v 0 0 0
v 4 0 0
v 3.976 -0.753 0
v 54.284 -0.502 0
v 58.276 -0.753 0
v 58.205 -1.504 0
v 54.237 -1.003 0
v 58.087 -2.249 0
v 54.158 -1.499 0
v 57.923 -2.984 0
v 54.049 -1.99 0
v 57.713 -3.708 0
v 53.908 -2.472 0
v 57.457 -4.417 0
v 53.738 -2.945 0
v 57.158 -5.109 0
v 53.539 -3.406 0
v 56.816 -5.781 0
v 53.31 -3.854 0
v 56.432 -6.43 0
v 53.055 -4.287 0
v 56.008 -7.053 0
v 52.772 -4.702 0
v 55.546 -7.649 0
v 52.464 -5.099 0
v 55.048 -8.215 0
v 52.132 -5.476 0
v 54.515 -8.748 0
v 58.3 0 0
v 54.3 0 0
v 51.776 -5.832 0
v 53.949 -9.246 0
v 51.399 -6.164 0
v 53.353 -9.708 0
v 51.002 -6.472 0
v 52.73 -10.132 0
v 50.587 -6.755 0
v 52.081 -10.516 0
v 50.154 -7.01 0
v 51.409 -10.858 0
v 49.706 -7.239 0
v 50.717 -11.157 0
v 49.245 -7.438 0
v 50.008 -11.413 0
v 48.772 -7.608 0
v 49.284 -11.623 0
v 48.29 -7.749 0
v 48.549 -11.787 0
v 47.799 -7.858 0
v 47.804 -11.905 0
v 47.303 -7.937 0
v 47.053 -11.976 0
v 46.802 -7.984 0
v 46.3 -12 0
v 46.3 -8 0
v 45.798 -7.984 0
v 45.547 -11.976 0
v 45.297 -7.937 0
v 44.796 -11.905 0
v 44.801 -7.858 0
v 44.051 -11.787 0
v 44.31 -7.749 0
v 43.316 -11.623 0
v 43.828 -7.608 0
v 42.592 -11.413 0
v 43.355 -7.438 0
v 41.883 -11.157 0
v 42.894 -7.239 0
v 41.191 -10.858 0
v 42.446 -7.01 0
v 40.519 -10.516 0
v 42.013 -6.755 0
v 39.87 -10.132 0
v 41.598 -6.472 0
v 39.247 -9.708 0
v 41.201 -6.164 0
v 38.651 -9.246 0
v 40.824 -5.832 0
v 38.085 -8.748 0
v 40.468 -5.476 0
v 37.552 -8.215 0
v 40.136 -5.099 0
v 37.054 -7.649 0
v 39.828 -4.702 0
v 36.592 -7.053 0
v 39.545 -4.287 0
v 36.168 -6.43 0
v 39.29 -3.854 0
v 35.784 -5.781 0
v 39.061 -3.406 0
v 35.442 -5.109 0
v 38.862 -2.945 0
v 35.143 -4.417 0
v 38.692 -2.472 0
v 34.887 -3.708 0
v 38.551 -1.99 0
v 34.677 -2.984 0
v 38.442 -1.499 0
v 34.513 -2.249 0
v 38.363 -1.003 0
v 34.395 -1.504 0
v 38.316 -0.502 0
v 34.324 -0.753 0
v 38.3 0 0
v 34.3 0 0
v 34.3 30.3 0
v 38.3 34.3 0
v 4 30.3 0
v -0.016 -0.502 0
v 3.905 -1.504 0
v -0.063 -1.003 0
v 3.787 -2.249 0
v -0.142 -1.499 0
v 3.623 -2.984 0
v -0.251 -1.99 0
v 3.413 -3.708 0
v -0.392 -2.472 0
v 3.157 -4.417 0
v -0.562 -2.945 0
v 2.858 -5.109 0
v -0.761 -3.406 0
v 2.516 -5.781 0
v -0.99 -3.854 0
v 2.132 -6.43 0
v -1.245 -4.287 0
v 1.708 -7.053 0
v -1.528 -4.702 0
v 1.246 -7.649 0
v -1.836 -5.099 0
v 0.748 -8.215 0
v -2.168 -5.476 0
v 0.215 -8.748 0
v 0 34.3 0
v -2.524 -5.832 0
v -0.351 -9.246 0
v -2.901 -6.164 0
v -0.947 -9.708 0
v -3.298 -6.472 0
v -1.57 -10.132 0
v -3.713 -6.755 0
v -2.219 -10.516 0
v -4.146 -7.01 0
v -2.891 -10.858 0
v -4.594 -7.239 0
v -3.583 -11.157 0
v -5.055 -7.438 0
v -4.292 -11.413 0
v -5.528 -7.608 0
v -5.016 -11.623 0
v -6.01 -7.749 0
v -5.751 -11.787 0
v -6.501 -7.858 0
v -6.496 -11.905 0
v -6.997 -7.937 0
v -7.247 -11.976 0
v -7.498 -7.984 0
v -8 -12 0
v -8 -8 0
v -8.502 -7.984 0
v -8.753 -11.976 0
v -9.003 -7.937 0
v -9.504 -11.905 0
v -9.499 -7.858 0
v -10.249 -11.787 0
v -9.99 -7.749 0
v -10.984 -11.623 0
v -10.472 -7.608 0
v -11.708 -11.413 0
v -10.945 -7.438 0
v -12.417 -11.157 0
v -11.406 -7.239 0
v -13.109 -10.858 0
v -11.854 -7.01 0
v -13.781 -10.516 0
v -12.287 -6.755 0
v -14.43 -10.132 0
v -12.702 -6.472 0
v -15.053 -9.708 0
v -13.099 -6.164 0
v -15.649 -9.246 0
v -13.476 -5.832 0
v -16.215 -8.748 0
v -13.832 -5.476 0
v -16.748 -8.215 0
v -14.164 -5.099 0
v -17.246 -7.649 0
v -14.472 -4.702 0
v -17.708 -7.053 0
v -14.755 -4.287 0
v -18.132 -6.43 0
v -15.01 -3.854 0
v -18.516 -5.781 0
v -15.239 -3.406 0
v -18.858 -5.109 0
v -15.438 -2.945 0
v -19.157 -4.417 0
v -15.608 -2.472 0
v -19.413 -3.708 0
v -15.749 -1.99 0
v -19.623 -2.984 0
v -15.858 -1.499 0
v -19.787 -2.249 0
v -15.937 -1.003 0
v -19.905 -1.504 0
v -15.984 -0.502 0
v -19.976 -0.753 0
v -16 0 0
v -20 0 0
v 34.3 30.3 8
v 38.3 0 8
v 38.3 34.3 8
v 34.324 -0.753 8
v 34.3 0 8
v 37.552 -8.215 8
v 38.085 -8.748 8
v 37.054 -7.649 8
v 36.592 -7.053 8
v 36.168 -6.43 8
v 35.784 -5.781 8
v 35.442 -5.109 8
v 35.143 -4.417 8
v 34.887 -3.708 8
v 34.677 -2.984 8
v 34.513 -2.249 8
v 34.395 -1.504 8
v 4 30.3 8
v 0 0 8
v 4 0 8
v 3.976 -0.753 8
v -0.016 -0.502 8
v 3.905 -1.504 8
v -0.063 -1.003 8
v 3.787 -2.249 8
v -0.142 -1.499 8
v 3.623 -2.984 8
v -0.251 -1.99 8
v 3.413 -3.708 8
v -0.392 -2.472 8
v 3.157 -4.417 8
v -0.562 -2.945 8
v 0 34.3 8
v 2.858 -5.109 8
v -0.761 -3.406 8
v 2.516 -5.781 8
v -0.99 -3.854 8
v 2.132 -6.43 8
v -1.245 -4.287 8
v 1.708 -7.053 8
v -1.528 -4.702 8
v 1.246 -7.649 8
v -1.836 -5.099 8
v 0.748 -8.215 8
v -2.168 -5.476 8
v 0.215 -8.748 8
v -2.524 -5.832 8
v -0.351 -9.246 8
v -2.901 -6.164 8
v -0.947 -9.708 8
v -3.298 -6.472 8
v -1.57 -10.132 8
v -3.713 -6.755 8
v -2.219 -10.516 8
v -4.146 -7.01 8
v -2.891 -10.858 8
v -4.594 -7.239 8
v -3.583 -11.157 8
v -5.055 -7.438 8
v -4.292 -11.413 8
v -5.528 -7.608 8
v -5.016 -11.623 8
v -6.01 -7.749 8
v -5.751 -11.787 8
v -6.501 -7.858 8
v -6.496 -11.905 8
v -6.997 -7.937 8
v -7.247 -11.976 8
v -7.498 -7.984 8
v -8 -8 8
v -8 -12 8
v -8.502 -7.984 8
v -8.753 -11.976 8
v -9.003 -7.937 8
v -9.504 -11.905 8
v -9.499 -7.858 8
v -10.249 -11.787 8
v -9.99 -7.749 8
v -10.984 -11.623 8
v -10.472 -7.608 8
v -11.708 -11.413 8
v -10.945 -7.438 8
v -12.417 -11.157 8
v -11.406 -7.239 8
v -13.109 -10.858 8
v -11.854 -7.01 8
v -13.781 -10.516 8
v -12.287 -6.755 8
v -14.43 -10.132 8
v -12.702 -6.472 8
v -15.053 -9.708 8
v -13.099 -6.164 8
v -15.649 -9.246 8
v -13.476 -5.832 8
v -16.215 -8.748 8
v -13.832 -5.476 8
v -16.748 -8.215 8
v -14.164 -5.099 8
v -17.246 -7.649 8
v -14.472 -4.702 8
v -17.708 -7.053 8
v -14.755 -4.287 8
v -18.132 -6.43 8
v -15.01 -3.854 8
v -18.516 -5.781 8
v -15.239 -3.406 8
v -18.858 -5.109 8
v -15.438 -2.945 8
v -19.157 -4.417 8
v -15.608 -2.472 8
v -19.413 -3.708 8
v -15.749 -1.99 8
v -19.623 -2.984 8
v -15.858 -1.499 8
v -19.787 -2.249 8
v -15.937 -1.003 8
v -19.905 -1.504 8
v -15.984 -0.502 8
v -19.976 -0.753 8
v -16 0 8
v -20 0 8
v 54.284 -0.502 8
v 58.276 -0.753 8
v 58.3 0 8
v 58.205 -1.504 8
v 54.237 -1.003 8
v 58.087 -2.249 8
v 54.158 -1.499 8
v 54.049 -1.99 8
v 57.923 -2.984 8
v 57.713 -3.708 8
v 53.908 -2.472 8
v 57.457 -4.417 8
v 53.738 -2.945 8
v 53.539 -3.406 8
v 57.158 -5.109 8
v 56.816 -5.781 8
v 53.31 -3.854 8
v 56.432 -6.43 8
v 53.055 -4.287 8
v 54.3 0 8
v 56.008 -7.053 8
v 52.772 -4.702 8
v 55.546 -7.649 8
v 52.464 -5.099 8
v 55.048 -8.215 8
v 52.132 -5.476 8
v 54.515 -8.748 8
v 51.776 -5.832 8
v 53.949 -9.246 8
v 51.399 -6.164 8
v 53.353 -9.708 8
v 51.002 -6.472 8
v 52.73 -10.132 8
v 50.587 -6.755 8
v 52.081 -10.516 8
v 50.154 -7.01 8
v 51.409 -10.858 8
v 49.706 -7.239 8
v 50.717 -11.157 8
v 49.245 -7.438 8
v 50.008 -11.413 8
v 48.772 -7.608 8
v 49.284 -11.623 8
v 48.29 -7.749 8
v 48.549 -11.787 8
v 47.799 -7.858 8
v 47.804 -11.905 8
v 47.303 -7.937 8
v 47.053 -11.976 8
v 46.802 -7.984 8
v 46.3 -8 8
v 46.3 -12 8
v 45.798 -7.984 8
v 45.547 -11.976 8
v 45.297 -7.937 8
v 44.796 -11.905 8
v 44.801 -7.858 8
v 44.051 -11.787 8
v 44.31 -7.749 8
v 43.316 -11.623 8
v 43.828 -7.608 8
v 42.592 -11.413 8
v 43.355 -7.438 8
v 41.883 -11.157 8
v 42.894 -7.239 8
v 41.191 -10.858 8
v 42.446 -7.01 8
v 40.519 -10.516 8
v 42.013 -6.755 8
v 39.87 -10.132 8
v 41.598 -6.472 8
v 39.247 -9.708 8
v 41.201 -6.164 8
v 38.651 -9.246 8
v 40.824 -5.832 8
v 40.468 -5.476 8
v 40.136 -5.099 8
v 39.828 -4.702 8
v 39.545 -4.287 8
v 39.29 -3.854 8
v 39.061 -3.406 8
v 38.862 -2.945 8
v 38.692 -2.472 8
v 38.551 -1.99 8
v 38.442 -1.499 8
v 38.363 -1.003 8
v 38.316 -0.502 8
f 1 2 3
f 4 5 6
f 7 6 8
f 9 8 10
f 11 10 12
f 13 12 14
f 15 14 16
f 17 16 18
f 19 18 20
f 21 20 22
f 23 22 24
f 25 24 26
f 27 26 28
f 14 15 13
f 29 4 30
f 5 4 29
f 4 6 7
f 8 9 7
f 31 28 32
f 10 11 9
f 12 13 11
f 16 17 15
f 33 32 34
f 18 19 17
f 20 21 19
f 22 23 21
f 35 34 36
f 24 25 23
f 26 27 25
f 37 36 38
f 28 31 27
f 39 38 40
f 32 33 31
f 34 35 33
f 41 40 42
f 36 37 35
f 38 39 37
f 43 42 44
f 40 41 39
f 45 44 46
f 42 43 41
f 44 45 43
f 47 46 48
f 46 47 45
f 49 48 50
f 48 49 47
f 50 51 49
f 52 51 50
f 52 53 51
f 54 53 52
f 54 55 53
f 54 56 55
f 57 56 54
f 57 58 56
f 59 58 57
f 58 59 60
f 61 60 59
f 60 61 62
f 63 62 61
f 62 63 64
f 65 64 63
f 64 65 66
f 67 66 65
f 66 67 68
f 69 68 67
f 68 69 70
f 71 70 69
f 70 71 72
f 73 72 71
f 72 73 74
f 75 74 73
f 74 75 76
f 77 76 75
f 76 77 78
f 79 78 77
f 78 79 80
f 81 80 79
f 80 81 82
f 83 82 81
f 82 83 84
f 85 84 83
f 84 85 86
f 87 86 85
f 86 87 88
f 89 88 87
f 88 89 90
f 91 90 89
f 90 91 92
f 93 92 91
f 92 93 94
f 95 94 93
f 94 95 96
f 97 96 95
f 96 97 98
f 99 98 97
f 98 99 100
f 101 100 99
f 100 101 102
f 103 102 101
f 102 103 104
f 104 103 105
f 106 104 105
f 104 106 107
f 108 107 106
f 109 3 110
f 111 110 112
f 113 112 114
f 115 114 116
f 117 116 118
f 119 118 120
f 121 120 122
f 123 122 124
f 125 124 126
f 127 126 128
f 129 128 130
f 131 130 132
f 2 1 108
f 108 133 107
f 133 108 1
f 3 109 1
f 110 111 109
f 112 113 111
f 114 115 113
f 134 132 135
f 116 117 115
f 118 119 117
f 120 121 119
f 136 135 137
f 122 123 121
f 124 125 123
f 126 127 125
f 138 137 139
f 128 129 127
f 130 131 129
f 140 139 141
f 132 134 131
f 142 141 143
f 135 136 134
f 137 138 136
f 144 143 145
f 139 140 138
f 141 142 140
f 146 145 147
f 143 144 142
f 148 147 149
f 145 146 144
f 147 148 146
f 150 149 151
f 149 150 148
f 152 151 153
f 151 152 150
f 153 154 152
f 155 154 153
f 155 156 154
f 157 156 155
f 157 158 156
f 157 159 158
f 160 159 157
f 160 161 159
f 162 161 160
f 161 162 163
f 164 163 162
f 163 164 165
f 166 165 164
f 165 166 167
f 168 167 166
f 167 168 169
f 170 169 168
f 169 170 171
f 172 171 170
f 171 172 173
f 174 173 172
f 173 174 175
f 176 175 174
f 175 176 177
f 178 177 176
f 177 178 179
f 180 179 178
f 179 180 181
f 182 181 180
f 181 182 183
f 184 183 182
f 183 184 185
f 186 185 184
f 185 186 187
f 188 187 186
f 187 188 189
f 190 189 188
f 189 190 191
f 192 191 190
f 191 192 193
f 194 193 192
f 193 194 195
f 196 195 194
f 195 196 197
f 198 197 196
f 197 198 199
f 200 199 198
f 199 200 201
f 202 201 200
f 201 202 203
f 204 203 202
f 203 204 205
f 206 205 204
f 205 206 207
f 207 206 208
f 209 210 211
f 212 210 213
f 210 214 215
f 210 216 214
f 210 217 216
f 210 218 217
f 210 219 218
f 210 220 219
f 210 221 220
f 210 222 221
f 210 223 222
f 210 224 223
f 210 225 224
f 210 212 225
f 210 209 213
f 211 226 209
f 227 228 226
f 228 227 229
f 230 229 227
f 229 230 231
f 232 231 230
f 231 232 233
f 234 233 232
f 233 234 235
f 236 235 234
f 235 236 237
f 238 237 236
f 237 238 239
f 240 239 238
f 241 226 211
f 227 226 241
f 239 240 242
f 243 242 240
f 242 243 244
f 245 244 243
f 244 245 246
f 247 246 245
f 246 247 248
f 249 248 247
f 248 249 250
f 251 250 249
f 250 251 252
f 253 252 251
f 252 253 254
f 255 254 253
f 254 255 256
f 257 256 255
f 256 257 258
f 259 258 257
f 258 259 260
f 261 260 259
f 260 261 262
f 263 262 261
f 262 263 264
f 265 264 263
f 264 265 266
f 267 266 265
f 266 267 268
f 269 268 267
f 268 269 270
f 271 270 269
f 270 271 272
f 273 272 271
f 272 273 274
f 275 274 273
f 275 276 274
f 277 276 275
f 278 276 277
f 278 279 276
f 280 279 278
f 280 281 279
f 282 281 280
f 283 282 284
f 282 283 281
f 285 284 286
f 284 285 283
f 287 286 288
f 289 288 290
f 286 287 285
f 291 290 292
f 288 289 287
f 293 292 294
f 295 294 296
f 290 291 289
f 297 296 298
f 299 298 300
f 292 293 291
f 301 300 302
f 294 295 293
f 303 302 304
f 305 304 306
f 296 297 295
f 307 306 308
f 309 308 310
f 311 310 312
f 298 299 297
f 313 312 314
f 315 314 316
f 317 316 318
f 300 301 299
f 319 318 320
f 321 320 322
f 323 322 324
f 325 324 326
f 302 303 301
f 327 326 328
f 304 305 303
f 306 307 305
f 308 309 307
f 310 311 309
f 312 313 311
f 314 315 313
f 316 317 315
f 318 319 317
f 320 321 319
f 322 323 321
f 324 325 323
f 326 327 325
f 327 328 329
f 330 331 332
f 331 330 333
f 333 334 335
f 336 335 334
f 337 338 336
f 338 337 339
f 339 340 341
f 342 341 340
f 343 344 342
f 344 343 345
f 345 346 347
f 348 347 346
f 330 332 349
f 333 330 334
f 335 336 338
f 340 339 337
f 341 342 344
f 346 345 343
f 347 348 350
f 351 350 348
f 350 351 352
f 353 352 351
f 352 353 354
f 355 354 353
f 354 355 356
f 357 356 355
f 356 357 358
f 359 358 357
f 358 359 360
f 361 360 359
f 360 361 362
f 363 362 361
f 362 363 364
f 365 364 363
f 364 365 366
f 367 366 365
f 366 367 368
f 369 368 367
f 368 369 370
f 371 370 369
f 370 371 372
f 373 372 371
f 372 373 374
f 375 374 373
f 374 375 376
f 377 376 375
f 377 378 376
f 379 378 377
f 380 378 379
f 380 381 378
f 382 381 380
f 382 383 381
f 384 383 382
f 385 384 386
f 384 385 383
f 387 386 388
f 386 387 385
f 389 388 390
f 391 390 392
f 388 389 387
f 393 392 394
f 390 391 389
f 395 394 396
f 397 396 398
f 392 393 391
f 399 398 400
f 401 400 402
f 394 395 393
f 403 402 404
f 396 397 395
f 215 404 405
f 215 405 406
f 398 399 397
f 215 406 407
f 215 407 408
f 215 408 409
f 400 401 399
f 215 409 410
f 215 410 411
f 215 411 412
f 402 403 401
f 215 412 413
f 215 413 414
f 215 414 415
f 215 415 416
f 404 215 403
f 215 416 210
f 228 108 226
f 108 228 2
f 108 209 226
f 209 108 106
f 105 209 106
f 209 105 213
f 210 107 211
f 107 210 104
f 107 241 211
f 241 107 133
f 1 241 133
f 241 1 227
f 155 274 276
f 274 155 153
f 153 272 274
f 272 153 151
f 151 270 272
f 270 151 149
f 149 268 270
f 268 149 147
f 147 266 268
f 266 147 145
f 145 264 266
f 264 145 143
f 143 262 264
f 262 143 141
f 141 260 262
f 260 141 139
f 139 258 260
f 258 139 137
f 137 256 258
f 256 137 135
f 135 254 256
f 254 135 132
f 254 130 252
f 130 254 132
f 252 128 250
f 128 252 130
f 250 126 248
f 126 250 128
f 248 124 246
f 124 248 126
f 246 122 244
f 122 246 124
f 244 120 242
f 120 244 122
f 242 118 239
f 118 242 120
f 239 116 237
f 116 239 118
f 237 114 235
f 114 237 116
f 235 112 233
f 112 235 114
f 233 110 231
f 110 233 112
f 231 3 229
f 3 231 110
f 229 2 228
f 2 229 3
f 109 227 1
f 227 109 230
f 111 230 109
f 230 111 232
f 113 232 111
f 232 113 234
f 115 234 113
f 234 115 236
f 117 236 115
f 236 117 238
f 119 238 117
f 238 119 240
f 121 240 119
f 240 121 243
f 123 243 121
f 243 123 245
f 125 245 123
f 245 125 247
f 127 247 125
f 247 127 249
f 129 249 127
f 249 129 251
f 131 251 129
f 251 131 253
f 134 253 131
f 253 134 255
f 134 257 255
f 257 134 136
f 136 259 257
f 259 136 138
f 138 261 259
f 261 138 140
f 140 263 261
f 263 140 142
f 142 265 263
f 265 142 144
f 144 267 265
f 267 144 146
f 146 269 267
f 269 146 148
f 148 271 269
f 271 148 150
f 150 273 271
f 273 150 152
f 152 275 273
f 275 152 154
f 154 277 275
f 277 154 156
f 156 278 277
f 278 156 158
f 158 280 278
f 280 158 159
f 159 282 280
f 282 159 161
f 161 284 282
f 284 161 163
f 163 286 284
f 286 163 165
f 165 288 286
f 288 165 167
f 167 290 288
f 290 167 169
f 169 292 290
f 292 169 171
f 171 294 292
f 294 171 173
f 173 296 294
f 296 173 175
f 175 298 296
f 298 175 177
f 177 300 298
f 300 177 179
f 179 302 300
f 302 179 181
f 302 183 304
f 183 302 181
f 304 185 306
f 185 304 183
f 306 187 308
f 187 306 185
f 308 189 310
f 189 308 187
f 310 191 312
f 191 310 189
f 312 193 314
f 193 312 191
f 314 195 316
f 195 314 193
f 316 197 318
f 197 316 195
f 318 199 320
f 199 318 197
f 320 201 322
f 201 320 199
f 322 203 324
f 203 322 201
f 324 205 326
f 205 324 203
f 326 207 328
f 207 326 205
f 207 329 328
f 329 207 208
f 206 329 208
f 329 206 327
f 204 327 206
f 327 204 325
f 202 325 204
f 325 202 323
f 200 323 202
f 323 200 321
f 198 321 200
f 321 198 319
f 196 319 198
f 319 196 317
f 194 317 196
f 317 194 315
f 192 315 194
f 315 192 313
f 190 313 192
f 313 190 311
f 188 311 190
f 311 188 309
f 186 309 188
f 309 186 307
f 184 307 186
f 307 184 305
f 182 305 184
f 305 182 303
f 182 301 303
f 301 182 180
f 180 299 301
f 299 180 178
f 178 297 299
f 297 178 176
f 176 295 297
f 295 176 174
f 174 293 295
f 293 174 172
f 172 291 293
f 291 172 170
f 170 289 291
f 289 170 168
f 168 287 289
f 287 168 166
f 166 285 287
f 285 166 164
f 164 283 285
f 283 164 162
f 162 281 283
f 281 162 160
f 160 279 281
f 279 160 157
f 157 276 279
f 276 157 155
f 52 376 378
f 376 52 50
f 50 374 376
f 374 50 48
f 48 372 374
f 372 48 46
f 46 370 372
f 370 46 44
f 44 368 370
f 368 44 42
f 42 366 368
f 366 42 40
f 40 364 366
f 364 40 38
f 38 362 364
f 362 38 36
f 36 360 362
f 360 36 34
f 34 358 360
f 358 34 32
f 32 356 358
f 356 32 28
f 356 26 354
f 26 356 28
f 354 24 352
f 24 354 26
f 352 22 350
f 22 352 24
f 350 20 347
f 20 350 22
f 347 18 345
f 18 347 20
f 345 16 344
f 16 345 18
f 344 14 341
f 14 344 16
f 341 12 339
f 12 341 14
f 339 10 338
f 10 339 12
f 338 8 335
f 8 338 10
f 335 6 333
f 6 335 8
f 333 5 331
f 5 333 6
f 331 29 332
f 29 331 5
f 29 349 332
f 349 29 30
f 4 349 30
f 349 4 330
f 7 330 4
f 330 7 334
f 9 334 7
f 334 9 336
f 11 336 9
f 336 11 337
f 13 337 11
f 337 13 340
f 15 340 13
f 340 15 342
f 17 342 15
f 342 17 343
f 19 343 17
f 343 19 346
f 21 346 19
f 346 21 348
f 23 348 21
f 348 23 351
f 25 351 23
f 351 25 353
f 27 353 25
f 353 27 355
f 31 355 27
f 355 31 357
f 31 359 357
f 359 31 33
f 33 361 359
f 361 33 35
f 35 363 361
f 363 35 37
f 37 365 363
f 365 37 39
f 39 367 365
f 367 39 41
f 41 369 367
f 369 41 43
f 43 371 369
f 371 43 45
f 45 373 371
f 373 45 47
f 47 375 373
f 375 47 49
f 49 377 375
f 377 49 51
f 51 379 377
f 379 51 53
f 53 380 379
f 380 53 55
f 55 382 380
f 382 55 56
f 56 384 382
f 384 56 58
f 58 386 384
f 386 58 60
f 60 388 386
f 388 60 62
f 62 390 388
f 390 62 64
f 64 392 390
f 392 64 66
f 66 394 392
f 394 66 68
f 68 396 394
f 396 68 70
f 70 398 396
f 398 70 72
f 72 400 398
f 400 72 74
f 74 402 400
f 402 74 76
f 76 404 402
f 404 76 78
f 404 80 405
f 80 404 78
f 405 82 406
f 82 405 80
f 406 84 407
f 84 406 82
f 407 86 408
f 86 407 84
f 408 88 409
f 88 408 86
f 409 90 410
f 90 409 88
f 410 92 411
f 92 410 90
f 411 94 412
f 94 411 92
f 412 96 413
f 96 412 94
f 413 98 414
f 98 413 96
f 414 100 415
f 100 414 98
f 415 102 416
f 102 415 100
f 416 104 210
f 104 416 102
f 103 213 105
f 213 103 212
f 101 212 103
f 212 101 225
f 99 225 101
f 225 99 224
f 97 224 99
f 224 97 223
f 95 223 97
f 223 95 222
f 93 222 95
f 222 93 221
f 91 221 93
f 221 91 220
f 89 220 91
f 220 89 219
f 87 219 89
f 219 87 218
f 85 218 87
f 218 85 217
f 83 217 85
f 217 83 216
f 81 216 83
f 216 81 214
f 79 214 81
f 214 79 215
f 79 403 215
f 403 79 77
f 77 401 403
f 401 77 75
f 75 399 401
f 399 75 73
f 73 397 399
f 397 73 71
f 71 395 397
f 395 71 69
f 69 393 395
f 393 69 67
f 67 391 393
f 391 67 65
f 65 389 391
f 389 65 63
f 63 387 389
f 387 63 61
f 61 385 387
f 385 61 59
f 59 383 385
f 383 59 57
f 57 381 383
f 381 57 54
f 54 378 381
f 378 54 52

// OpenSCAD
// Measured:
wall_width = 30.3;
// tolerance = 0.05;
$fn = 100;

// Desired:
thickness = 4.0;
drop = wall_width;
hook_radius = 12.0;
length = 8.0;

module cap(length, drop = drop, t = thickness) {
    w = wall_width;
    linear_extrude(length) {
        square([t, drop]);
        translate([0, drop]) square([t + w + t, t]);
        translate([t + w, 0]) square([t, drop]);
    }
}

module hook(length, radius) {
    linear_extrude(length) {
        difference() {
            circle(radius);
            circle(radius-thickness);
            translate([-radius, 0]) square(2*radius);
        }
    }
}

cap(length=length);
translate([-hook_radius + thickness, 0, 0]) color("green")
  hook(length=length, radius=hook_radius);
translate([wall_width + hook_radius + thickness, 0, 0]) color("green")
  hook(length=length, radius=hook_radius);
